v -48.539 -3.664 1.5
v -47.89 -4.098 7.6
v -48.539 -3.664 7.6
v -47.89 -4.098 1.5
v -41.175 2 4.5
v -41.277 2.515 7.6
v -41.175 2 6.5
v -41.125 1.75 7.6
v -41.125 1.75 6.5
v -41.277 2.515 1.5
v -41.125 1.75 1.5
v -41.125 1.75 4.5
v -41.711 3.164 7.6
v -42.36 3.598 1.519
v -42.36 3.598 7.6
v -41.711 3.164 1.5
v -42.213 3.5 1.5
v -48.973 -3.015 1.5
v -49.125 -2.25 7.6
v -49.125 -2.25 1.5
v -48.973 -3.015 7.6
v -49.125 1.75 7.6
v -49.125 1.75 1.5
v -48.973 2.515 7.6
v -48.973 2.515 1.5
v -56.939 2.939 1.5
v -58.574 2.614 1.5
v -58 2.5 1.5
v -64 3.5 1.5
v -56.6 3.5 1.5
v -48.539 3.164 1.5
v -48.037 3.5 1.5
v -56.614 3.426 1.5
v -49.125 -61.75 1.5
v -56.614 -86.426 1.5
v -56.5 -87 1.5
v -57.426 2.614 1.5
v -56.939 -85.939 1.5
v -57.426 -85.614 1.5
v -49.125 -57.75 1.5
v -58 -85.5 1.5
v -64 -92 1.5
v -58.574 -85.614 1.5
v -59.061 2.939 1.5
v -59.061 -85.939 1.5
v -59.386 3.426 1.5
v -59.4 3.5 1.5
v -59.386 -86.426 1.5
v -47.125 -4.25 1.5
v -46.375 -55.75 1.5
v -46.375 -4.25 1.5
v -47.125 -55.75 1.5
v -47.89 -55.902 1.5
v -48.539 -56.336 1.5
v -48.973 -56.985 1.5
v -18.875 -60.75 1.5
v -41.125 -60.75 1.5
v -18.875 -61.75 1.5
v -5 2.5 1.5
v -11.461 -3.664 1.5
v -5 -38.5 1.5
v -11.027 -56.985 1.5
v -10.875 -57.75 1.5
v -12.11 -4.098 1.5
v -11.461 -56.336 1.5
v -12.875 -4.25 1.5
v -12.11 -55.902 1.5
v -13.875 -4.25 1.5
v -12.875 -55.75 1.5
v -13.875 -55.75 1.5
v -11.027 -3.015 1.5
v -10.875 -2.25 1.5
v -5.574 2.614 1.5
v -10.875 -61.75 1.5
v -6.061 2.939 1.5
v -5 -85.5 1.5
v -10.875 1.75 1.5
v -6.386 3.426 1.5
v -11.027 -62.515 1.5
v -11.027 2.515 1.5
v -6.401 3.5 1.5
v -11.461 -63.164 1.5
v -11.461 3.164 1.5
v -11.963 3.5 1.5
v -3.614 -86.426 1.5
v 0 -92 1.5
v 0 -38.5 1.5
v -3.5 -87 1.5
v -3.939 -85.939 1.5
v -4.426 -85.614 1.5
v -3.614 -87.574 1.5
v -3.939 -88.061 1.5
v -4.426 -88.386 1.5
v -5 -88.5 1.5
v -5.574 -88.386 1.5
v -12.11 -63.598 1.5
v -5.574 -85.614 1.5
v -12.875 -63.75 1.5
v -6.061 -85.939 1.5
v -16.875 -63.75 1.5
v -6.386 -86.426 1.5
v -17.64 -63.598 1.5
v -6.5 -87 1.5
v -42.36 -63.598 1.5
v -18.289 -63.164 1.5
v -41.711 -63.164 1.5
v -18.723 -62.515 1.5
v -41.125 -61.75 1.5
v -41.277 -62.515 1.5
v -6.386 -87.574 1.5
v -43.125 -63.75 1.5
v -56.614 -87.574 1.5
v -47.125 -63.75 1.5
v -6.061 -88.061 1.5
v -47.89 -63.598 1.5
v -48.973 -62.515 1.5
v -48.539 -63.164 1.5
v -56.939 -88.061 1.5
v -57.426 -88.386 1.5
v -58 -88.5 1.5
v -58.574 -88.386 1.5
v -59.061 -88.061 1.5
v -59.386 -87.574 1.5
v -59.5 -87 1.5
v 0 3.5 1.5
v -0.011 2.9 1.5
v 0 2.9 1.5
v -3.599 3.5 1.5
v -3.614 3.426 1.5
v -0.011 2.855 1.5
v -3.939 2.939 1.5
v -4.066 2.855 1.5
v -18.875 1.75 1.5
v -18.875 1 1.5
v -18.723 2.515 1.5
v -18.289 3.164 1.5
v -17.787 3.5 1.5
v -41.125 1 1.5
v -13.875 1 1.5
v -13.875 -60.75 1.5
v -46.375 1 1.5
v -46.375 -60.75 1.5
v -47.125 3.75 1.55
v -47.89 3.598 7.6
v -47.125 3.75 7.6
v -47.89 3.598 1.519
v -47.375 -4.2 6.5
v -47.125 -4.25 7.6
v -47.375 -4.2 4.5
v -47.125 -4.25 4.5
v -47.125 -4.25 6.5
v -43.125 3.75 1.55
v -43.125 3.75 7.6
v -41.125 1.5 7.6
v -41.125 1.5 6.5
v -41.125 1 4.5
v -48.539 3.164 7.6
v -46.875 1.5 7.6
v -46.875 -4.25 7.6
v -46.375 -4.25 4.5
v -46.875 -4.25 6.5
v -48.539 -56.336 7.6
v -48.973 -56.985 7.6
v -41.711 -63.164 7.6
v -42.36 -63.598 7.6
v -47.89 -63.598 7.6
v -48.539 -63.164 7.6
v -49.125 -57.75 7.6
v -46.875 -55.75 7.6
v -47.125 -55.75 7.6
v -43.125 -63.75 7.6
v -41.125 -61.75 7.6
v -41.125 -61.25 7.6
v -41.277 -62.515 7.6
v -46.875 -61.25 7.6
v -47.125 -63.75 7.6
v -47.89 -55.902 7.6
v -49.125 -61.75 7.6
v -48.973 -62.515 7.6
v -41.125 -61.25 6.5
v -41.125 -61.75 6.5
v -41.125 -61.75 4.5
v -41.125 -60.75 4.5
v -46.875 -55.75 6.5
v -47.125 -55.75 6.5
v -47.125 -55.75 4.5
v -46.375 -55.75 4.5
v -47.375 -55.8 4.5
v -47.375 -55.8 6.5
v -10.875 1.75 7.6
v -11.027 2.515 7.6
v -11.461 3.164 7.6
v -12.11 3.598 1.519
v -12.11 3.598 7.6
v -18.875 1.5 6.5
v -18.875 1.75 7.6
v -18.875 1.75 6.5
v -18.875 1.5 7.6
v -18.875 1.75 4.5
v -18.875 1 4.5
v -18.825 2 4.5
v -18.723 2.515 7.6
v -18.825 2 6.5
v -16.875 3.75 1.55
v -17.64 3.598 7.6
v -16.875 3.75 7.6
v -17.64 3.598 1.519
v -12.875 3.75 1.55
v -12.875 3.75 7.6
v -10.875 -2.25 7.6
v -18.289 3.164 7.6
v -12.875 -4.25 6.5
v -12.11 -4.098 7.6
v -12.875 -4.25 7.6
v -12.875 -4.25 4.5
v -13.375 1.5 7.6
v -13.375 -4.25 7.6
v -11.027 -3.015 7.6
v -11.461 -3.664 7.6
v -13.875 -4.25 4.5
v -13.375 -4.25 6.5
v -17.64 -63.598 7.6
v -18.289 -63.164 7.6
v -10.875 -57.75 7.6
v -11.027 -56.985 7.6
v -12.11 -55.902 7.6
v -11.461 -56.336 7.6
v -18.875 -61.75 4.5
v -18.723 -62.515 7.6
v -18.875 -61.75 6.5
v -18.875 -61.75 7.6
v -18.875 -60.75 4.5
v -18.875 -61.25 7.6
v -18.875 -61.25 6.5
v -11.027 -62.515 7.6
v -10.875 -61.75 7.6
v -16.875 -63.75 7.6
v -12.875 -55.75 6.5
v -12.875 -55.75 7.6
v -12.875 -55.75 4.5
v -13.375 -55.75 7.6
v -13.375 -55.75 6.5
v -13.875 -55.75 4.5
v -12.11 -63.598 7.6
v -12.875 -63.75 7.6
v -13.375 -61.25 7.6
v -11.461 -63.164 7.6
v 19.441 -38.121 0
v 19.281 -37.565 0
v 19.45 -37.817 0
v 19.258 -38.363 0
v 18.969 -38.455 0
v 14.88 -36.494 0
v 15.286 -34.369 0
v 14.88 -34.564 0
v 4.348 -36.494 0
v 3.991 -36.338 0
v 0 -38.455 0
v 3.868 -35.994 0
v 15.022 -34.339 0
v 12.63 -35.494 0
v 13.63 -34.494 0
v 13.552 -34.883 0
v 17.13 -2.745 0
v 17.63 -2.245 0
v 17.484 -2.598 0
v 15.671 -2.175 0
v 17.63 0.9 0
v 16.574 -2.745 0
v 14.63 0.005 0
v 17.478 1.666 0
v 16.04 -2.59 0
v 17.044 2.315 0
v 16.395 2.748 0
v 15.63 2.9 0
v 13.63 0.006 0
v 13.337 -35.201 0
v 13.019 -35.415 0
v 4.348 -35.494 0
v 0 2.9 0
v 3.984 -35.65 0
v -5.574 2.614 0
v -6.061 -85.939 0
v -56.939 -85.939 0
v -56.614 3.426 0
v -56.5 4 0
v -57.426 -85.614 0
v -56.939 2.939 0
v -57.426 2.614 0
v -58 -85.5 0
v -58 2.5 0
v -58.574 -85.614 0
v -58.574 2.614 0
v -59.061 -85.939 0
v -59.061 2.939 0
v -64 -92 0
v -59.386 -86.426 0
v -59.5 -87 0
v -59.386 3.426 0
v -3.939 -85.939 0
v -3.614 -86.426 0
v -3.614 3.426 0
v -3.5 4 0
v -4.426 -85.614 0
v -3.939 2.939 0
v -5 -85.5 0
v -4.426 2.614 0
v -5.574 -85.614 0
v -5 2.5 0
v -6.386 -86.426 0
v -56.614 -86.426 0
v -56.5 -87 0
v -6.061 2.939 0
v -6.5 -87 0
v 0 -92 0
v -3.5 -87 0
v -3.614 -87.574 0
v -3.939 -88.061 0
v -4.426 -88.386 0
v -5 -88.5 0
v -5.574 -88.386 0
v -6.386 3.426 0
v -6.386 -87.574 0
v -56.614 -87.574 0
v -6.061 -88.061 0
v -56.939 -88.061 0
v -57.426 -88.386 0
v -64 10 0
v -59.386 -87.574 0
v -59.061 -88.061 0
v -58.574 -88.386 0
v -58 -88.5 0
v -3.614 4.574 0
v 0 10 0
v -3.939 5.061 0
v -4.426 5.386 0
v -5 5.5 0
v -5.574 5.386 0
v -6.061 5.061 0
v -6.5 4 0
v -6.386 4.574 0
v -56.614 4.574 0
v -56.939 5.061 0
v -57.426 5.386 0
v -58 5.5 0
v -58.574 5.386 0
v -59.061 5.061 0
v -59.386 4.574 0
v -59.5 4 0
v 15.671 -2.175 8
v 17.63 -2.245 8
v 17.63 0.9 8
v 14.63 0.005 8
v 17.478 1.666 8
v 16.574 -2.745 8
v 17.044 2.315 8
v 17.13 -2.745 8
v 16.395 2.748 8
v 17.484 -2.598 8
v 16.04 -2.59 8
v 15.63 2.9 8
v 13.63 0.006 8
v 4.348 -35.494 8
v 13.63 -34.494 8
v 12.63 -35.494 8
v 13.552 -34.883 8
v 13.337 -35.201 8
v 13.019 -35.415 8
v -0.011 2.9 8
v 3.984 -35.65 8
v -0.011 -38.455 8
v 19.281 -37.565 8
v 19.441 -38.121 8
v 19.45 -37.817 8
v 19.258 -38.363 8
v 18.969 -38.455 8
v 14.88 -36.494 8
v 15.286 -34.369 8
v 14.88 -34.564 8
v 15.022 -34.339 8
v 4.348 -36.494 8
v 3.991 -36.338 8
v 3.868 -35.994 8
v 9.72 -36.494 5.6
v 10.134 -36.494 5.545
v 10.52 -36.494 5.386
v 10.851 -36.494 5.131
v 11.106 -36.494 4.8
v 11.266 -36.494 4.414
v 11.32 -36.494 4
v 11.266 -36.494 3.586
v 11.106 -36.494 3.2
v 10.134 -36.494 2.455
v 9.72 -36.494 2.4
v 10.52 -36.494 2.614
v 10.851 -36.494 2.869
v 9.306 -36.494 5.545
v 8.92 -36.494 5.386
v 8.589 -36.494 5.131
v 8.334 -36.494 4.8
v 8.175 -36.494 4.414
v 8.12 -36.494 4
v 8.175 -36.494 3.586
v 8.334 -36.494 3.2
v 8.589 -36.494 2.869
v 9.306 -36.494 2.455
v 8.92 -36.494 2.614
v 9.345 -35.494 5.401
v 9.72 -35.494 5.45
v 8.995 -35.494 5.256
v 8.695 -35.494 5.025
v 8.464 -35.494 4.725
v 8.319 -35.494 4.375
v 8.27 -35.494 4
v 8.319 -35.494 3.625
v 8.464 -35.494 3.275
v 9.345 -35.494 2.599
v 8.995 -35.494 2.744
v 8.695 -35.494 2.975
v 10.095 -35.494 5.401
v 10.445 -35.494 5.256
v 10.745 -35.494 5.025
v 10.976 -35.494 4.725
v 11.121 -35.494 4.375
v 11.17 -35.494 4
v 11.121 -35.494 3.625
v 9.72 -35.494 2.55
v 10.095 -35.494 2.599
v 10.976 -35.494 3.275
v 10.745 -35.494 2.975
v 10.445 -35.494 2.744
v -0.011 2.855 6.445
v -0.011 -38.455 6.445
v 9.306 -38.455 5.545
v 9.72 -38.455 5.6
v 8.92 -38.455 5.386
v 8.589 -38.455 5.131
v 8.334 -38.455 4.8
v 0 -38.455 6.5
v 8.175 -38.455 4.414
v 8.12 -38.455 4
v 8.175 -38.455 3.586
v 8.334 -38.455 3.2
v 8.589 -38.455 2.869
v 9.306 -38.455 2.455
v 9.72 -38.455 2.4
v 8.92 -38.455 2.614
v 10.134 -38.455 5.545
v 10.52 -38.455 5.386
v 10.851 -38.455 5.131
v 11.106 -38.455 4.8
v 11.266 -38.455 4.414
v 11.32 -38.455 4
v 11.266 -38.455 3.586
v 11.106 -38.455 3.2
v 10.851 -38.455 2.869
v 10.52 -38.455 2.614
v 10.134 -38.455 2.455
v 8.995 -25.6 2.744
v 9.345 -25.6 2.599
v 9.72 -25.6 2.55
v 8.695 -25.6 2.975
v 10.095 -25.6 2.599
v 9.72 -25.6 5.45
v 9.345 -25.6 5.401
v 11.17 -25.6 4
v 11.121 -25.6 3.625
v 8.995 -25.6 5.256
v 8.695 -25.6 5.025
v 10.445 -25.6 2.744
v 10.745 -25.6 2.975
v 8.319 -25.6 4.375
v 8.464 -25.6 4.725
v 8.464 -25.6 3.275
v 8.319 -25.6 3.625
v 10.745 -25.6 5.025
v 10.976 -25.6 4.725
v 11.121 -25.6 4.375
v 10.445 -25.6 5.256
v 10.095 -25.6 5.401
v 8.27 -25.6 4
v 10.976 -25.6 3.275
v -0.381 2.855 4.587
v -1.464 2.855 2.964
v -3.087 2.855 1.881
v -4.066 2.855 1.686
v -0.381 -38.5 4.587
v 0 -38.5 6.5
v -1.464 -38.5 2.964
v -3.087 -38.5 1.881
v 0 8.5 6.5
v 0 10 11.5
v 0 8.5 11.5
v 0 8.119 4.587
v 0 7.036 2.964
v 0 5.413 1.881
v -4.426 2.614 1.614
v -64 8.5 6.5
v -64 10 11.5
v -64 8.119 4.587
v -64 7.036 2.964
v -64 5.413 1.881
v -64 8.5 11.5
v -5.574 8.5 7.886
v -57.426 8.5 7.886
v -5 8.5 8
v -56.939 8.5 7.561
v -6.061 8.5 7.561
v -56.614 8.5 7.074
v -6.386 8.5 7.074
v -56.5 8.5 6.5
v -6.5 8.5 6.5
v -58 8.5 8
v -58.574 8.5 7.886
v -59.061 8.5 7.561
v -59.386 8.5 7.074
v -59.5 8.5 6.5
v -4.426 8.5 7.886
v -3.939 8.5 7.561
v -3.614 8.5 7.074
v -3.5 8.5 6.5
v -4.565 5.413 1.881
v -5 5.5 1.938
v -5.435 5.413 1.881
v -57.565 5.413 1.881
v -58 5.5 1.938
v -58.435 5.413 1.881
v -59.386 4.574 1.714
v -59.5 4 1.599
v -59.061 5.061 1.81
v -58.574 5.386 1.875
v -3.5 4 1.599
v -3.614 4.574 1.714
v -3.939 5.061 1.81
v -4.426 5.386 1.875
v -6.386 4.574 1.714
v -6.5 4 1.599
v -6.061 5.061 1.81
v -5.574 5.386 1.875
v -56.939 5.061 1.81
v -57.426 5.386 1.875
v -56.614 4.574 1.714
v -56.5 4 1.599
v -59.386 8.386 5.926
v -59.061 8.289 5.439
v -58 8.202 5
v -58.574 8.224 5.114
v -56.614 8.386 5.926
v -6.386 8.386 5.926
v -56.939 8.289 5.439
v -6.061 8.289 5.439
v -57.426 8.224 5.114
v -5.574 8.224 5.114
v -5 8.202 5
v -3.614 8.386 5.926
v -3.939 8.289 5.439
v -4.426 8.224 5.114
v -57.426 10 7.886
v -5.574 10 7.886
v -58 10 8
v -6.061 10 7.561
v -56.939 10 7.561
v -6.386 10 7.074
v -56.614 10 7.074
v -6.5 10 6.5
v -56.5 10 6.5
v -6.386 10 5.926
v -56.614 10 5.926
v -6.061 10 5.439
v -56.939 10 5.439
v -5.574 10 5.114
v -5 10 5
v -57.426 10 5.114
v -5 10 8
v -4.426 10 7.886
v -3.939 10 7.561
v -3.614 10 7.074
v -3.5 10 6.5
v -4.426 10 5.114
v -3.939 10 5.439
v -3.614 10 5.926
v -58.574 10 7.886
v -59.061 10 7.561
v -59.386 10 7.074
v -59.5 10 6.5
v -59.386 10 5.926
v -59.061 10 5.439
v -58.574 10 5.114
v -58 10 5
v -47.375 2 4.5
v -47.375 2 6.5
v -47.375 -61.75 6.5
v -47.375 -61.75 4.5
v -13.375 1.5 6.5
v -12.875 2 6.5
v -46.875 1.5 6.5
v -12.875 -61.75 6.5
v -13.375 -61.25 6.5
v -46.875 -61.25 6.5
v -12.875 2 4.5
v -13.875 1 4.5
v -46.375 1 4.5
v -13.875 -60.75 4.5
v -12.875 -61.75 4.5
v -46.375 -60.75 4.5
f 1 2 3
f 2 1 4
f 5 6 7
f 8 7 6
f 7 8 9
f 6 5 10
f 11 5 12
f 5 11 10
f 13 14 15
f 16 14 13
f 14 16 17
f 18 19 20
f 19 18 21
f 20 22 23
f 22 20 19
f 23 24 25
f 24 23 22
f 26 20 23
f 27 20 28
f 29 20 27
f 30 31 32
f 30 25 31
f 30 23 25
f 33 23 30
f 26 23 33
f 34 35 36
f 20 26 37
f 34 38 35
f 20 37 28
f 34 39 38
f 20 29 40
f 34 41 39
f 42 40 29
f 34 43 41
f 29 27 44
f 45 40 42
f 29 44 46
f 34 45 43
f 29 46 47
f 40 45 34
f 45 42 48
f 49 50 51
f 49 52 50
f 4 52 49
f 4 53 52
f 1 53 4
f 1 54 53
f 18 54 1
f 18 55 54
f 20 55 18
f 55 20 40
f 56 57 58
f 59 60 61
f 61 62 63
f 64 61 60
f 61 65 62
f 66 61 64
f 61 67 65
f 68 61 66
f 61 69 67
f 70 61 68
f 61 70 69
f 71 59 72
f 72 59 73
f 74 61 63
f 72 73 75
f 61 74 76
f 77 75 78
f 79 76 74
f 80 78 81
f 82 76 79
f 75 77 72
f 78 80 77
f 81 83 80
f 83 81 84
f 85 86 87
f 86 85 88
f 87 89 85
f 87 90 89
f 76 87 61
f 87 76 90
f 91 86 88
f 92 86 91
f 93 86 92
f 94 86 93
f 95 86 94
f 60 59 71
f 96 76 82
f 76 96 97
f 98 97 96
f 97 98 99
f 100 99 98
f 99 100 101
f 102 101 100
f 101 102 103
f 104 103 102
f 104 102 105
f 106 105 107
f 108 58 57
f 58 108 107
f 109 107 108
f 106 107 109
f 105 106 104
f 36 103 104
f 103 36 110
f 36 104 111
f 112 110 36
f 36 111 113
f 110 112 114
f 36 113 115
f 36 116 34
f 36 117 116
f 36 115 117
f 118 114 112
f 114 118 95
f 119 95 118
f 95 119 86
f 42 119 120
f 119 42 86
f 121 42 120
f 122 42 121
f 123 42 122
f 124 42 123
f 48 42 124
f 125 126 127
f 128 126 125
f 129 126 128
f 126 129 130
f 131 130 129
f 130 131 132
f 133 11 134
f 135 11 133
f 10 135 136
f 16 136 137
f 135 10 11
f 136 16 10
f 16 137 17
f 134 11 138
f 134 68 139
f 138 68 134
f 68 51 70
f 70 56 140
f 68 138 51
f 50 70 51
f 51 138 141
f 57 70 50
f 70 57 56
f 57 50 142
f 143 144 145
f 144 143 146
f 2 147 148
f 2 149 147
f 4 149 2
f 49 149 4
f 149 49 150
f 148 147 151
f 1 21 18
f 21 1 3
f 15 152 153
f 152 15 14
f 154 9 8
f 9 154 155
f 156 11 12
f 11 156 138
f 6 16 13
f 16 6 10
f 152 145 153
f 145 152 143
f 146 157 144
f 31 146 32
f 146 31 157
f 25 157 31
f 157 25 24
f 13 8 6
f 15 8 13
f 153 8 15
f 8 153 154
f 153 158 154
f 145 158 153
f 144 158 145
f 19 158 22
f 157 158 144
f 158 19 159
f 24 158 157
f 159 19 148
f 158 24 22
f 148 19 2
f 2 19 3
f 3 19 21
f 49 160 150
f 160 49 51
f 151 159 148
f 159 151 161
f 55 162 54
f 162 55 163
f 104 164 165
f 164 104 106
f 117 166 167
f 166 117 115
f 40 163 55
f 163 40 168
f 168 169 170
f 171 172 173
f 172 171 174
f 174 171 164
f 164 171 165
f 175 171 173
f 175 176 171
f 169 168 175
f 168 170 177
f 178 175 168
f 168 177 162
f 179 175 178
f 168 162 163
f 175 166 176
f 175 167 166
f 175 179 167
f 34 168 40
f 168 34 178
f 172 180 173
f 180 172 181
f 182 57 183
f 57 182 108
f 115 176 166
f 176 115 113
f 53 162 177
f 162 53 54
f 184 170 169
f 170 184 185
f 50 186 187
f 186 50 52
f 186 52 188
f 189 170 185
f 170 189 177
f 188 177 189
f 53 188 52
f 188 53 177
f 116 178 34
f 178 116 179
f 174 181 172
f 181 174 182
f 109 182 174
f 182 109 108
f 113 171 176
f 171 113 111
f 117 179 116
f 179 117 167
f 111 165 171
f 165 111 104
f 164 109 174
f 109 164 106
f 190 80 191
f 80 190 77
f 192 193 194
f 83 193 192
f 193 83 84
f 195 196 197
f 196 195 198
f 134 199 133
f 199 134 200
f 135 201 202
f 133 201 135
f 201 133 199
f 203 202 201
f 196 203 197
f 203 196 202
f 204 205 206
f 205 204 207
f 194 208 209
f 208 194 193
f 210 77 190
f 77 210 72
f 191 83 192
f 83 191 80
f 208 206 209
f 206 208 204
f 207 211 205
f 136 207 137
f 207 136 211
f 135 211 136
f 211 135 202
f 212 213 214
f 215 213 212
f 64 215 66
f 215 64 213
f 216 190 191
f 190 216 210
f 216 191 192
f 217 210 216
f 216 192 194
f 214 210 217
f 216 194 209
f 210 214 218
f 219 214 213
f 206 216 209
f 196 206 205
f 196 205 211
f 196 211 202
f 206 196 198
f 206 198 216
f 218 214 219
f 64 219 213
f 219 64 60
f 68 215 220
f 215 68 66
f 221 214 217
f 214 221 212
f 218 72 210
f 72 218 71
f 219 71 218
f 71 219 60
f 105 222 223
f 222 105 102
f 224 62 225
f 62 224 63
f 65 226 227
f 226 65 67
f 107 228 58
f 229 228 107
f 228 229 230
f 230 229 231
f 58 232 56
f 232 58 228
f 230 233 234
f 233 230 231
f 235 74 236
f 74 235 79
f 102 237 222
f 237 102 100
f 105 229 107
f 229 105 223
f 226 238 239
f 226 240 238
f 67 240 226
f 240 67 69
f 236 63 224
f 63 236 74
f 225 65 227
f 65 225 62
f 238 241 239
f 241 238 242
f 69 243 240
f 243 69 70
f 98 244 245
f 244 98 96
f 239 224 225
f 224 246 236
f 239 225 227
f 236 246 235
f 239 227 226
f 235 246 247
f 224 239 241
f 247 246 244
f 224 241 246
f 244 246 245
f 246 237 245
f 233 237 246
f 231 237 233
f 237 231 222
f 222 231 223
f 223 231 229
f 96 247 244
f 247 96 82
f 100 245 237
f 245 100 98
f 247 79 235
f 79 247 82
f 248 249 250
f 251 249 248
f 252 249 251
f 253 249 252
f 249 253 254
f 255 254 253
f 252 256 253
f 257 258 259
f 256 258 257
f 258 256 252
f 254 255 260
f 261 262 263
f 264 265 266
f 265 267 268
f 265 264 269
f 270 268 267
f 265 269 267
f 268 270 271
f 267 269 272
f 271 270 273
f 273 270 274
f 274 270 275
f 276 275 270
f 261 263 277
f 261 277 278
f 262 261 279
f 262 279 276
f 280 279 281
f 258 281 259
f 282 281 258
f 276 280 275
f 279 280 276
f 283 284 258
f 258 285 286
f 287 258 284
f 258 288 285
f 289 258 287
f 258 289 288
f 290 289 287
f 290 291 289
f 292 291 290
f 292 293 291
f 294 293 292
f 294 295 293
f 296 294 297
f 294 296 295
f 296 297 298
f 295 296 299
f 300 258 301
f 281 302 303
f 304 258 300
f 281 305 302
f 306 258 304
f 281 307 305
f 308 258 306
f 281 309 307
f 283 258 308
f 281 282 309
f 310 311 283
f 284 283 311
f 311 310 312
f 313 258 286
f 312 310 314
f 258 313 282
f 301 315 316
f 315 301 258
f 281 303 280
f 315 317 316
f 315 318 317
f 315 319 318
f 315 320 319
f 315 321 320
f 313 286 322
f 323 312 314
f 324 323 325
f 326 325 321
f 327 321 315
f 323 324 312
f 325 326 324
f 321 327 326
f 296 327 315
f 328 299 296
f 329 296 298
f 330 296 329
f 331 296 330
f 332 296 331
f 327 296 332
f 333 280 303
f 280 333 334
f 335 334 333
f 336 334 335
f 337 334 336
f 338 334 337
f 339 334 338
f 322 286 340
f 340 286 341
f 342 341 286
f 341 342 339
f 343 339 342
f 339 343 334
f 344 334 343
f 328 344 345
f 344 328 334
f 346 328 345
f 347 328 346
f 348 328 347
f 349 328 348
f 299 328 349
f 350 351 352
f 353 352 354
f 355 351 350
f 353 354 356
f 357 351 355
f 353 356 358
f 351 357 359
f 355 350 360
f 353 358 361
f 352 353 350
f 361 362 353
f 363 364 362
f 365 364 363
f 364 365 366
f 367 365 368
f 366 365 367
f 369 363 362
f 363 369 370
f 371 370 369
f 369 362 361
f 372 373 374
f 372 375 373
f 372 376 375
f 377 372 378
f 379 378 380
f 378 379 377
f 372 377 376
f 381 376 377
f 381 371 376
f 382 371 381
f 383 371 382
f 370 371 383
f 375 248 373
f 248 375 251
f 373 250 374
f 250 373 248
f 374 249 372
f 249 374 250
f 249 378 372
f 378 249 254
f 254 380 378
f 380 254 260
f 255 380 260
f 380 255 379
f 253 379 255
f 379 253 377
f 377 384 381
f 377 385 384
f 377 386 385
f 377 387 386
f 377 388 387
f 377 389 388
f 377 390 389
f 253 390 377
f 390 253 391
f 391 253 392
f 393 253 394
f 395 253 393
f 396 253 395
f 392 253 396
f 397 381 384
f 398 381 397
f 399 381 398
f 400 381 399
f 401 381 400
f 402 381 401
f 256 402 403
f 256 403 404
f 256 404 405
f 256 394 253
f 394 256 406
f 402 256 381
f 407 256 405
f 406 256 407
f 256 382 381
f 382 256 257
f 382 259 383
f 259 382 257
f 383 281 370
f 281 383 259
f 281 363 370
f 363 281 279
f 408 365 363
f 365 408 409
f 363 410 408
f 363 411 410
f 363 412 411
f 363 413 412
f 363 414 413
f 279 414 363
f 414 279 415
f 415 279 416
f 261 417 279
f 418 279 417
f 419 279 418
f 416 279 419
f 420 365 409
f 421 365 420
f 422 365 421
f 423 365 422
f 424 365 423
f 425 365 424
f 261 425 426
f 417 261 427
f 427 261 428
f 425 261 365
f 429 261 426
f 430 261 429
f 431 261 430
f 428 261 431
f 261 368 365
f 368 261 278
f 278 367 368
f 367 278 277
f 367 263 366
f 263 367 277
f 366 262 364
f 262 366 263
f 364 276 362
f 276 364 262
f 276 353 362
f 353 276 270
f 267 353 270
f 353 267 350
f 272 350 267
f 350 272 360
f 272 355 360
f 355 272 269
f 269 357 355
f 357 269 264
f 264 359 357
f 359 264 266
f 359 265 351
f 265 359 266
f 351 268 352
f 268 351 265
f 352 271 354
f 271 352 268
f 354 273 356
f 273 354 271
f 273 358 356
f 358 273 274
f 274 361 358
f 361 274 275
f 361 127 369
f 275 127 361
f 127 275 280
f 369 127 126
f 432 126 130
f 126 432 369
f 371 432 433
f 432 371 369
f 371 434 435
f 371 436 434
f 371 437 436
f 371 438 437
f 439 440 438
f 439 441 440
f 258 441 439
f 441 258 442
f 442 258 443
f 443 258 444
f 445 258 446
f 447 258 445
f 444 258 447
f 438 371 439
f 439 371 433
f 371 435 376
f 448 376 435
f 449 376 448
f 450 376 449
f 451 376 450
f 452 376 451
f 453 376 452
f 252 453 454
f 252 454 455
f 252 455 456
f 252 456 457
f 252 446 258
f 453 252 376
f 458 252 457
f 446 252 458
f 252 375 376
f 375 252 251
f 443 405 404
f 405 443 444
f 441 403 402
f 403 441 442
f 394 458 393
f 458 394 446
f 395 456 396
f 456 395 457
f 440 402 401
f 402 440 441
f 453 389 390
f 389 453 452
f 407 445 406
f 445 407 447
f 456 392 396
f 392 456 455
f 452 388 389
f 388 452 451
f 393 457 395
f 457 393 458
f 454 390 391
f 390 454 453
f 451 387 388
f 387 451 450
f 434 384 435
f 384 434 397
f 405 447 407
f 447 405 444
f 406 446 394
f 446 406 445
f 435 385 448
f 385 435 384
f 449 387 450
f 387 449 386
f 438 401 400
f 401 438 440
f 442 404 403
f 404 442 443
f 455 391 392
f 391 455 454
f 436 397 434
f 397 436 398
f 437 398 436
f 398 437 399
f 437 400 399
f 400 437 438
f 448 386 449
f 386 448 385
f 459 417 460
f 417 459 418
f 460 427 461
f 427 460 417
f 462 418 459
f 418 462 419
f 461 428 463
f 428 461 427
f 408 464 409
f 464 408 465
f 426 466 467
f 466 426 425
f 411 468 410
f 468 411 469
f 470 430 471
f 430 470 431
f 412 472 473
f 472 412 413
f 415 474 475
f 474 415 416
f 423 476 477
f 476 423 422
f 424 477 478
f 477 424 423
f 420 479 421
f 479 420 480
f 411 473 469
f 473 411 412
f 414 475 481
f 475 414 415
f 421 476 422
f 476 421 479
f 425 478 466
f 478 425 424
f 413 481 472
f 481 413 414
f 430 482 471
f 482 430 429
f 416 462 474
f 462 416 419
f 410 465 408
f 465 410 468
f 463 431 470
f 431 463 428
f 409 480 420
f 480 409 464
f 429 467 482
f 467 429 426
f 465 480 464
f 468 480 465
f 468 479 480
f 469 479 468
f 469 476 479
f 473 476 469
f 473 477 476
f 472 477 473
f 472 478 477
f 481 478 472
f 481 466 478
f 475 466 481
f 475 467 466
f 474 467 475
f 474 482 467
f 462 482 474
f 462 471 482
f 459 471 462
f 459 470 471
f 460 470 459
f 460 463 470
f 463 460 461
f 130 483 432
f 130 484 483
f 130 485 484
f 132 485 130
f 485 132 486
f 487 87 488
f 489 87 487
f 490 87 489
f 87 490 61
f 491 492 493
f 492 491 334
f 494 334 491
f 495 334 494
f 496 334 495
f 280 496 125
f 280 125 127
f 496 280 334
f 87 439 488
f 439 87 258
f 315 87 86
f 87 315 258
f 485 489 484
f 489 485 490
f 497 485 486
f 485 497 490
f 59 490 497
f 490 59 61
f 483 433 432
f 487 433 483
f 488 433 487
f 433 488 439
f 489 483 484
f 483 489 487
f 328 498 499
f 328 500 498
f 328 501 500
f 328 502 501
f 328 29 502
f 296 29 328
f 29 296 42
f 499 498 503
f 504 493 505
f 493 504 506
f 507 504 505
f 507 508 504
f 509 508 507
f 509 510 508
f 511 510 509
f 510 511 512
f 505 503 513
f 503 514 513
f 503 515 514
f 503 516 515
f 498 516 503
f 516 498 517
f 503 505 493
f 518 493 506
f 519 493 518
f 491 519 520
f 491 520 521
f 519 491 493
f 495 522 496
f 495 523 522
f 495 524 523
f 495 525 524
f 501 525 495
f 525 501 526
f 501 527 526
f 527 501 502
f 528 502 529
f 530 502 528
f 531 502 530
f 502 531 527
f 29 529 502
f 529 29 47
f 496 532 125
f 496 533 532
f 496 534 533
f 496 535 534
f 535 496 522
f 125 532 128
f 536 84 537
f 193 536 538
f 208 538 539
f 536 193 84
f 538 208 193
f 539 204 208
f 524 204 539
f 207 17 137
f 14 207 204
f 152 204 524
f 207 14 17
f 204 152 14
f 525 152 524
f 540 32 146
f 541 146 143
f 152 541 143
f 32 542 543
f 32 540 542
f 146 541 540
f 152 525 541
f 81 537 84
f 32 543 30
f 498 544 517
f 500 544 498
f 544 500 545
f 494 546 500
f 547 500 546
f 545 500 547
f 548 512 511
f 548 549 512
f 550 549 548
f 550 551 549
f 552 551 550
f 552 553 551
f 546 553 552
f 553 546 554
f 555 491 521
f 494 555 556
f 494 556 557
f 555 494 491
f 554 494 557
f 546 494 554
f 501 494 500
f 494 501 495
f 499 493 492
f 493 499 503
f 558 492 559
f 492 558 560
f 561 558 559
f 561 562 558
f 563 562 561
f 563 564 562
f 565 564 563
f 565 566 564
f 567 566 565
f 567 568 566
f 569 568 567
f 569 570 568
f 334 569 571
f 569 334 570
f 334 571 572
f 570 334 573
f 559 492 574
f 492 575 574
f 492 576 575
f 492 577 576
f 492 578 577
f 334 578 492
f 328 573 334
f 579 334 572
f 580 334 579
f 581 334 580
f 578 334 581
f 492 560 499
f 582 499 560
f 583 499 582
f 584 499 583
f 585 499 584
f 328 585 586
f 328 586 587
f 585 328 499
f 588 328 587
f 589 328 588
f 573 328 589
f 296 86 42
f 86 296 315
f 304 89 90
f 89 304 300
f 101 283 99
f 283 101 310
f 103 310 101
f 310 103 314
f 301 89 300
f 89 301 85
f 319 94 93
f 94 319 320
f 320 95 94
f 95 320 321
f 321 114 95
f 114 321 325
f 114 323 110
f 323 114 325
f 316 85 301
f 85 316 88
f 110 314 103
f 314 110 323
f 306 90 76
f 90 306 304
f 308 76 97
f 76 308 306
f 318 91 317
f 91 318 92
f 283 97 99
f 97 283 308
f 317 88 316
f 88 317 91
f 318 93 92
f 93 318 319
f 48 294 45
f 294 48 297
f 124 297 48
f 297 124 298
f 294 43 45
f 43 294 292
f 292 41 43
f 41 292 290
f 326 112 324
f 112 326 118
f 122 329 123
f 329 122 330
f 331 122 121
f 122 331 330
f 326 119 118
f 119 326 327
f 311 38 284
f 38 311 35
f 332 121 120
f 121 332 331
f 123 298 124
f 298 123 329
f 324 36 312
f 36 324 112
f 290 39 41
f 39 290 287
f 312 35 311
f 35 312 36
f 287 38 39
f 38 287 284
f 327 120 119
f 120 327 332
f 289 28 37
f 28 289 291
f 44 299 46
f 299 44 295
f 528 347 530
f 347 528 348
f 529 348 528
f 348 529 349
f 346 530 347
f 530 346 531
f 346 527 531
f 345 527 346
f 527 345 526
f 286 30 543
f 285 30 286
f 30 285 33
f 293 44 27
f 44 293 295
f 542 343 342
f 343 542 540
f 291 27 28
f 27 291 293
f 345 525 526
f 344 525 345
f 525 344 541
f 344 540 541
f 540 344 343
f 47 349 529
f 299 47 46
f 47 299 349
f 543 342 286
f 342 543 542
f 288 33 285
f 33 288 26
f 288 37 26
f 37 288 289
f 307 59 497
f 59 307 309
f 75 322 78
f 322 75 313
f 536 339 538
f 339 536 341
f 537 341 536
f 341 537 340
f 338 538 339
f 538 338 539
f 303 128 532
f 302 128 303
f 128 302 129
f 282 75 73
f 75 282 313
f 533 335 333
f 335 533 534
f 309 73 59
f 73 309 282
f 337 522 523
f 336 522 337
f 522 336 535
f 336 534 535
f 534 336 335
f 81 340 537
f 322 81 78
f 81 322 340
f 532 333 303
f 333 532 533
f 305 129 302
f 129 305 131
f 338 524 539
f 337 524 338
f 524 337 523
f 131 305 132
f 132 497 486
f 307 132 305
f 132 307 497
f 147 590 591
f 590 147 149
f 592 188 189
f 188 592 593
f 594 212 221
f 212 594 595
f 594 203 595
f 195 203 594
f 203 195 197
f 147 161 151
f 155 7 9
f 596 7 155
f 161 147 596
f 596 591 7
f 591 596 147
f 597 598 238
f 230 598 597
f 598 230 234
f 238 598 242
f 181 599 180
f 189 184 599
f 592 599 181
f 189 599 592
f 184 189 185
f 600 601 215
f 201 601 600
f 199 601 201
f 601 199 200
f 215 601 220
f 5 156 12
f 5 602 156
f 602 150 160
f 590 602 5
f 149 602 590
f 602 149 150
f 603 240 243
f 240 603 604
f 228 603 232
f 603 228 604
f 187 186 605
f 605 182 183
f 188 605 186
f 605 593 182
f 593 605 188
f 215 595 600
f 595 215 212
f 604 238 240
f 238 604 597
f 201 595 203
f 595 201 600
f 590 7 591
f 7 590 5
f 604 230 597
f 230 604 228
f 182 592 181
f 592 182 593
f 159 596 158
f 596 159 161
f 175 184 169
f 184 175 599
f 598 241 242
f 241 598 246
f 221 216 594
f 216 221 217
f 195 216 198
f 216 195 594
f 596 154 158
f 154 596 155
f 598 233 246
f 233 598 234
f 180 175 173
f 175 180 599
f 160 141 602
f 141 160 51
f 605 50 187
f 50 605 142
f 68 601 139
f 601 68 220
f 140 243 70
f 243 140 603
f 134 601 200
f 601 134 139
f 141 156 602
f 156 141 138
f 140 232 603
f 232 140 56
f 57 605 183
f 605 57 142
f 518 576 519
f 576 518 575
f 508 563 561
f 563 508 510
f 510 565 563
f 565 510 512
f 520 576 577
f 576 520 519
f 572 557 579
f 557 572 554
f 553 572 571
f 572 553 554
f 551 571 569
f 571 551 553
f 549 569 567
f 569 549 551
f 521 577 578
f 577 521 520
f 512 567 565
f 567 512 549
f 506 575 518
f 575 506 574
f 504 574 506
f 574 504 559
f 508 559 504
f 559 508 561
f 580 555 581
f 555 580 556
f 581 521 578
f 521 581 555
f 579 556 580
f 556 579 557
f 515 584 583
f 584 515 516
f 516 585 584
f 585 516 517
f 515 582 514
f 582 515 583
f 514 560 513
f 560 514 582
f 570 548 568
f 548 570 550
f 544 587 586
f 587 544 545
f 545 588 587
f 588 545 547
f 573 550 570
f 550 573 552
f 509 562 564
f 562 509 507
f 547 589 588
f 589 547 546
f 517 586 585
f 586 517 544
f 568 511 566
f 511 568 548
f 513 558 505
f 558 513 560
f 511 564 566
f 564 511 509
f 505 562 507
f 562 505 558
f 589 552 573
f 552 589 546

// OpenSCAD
// This work is licensed under a Creative Commons Attribution-ShareAlike 3.0 Unported License.
// https://creativecommons.org/licenses/by-sa/3.0/

// board dimensions
boardLength = 102;
boardWidth = 64;
// holes in board
boardWidthStandoffSpacing = 53;
boardHeightStandoffSpacing = 91;

board2dims = [34.25, 63.5, 2];

// DIN rail clamp thickness
clampThickness = 8;
// thickness of sled for board
sledThickness = 1.5;
// the top of the row of PowerPoles will be this far above the DIN rail
heightAboveRail = 10;
// how deep the bolt should go into the solid part, past the spring clip
boltHoleDepth = 10;
// diameter where the bolt passes through the spring clip
looseBoltDiameter = 3.2;
// diameter where the bolt should screw into the DIN holder body
tightBoltDiameter = 2.9;
// standoff dims
standoffDiameter = 8;
standoffScrewHoleDiameter = 3;
standoffHeight = 2.5;

$fn = 16;

// DIN rail clamp
// adapted from Thingiverse 101024 by Robert Hunt
// made with 1mm wider opening: my rail is bigger or my printer prints too small
// Dimensions: 19.74 x 41.355 x clampThickness
module din_clamp() {
	$fn = 24;
	translate([-9.72, -13.1, 0]) mirror([1, 0, 0])
	difference() {
		linear_extrude(height=clampThickness, convexity=5) {
			// imported Robert's DXF to Inkscape, adjusted, then exported via https://github.com/martymcguire/inkscape-openscad-poly
			polygon(points=
				[[-9.731, 16], [5.910, 16], [6.675, 15.848], [7.324, 15.415], [7.758, 14.766], [7.910, 14], [7.910, 10.855],
				[7.764, 10.502], [7.410, 10.355], [6.854, 10.355], [6.320, 10.510], [5.951, 10.925], [4.910, 13.105], [3.910, 13.106],
				[3.910, -21.394], [3.832, -21.783], [3.617, -22.101], [3.299, -22.315], [2.910, -22.394], [-5.372, -22.394], [-5.736, -22.550],
				[-5.852, -22.894], [-5.729, -23.238], [-5.372, -23.394], [5.160, -23.394], [5.160, -21.464], [5.302, -21.239], [5.566, -21.269],
				[9.561, -24.465], [9.730, -24.717], [9.721, -25.021], [9.538, -25.263], [9.249, -25.355], [-9.731, -25.355]]
				, paths=
				[[0, 1, 2, 3, 4, 5, 6, 7, 8, 9, 10, 11, 12, 13, 14, 15, 16, 17, 18, 19, 20, 21, 22, 23, 24, 25, 26, 27, 28, 29, 30, 31, 32, 33, 0]]
			);
		}
		translate([0, -22.5, clampThickness / 2]) {
			rotate([90, 90, 0]) {
				cylinder(h= boltHoleDepth, r = looseBoltDiameter / 2);
			}
		}
		translate([0, -22.5, clampThickness / 2]) {
			rotate([-90, 90, 0]) {
				cylinder(h= boltHoleDepth, r = tightBoltDiameter / 2);
			}
		}
	}
}
// End of DIN clamp by Robert Hunt

module roundCornersCube(x,y,z,r) {
        minkowski() {
                cube([x - 2 * r, y - 2 * r, z], center=true);
                cylinder(r=r, h=0.1);
        }
}

module pegs(dims) {
        radius = 4;
        translate([dims[0] / 2 - 2, dims[1] / 2 - 2, 3])
                roundCornersCube(8, 8, 6, 2, center=true);
        translate([dims[0] / 2 - 2, dims[1] / -2 + 2, 3])
                roundCornersCube(8, 8, 6, 2, center=true);
        translate([dims[0] / -2 + 2, dims[1] / 2 - 2, 3])
                roundCornersCube(8, 8, 6, 2, center=true);
        translate([dims[0] / -2 + 2, dims[1] / -2 + 2, 3])
                roundCornersCube(8, 8, 6, 2, center=true);
}

module boardCutout(dims, extra) {
        translate(extra / 2 + [0, 0, 4])
                cube(dims + extra, center=true);
        translate(extra / 2 + [0, 0, 5])
                cube(dims + extra - [1, 1, -2], center=true);
        translate(extra / 2 + [0, 0, sledThickness])
                cube(dims + extra - [2, 2, -1], center=true);
}

module zFillet(radius, length) {
	difference() {
		cube([radius, radius, length]);
		cylinder(r=radius, h=length);
	}
}

module yFillet(radius, length) {
	translate([radius, 0, radius])
	rotate([-90, 90, 0])
	zFillet(radius, length);
}

module standoffs4(xspacing, yspacing, dx, dy, diam, height) {
	translate([dx, dy, sledThickness]) {
		cylinder(d=diam, h=height);
		translate([xspacing, 0, 0])
			cylinder(d=diam, h=height);
		translate([xspacing, yspacing, 0])
			cylinder(d=diam, h=height);
		translate([0, yspacing, 0])
			cylinder(d=diam, h=height);
	}
}

module clampWithSled(heightAboveRailTop, height, stickOut) {
	sledBottom = heightAboveRailTop - height;
	difference() {
		union() {
			translate([0, sledBottom, 0]) {
				//~ standoffs4(boardWidthStandoffSpacing, boardHeightStandoffSpacing, 5, 5, standoffDiameter, standoffHeight);
				cube([stickOut, height, sledThickness]);
			}
			translate([30, -30, sledThickness])
				pegs(board2dims);
			din_clamp();
			translate([0, -38.5, sledThickness])
				yFillet(5, 41.355);
			translate([0, heightAboveRailTop - sledThickness, sledThickness]) {
				cube([boardWidth, sledThickness, 10]);
				rotate([0, 0, -90])
					yFillet(5, boardWidth);
			}
		}
		translate([0, sledBottom, -5])
			standoffs4(boardWidthStandoffSpacing, boardHeightStandoffSpacing, 5, 5, standoffScrewHoleDiameter, 10);
		translate([30, -30, sledThickness])
			boardCutout(board2dims, [0.25, 0.25, 0]);
		translate([5, heightAboveRailTop + 5, 5 + sledThickness]) rotate([90, 0, 0]) {
			cylinder(d=standoffScrewHoleDiameter, h=10);
			translate([boardWidthStandoffSpacing, 0, 0])
				cylinder(d=standoffScrewHoleDiameter, h=10);
		}
	}
}

mirror([1, 0, 0])
clampWithSled(heightAboveRail, boardLength, boardWidth);
